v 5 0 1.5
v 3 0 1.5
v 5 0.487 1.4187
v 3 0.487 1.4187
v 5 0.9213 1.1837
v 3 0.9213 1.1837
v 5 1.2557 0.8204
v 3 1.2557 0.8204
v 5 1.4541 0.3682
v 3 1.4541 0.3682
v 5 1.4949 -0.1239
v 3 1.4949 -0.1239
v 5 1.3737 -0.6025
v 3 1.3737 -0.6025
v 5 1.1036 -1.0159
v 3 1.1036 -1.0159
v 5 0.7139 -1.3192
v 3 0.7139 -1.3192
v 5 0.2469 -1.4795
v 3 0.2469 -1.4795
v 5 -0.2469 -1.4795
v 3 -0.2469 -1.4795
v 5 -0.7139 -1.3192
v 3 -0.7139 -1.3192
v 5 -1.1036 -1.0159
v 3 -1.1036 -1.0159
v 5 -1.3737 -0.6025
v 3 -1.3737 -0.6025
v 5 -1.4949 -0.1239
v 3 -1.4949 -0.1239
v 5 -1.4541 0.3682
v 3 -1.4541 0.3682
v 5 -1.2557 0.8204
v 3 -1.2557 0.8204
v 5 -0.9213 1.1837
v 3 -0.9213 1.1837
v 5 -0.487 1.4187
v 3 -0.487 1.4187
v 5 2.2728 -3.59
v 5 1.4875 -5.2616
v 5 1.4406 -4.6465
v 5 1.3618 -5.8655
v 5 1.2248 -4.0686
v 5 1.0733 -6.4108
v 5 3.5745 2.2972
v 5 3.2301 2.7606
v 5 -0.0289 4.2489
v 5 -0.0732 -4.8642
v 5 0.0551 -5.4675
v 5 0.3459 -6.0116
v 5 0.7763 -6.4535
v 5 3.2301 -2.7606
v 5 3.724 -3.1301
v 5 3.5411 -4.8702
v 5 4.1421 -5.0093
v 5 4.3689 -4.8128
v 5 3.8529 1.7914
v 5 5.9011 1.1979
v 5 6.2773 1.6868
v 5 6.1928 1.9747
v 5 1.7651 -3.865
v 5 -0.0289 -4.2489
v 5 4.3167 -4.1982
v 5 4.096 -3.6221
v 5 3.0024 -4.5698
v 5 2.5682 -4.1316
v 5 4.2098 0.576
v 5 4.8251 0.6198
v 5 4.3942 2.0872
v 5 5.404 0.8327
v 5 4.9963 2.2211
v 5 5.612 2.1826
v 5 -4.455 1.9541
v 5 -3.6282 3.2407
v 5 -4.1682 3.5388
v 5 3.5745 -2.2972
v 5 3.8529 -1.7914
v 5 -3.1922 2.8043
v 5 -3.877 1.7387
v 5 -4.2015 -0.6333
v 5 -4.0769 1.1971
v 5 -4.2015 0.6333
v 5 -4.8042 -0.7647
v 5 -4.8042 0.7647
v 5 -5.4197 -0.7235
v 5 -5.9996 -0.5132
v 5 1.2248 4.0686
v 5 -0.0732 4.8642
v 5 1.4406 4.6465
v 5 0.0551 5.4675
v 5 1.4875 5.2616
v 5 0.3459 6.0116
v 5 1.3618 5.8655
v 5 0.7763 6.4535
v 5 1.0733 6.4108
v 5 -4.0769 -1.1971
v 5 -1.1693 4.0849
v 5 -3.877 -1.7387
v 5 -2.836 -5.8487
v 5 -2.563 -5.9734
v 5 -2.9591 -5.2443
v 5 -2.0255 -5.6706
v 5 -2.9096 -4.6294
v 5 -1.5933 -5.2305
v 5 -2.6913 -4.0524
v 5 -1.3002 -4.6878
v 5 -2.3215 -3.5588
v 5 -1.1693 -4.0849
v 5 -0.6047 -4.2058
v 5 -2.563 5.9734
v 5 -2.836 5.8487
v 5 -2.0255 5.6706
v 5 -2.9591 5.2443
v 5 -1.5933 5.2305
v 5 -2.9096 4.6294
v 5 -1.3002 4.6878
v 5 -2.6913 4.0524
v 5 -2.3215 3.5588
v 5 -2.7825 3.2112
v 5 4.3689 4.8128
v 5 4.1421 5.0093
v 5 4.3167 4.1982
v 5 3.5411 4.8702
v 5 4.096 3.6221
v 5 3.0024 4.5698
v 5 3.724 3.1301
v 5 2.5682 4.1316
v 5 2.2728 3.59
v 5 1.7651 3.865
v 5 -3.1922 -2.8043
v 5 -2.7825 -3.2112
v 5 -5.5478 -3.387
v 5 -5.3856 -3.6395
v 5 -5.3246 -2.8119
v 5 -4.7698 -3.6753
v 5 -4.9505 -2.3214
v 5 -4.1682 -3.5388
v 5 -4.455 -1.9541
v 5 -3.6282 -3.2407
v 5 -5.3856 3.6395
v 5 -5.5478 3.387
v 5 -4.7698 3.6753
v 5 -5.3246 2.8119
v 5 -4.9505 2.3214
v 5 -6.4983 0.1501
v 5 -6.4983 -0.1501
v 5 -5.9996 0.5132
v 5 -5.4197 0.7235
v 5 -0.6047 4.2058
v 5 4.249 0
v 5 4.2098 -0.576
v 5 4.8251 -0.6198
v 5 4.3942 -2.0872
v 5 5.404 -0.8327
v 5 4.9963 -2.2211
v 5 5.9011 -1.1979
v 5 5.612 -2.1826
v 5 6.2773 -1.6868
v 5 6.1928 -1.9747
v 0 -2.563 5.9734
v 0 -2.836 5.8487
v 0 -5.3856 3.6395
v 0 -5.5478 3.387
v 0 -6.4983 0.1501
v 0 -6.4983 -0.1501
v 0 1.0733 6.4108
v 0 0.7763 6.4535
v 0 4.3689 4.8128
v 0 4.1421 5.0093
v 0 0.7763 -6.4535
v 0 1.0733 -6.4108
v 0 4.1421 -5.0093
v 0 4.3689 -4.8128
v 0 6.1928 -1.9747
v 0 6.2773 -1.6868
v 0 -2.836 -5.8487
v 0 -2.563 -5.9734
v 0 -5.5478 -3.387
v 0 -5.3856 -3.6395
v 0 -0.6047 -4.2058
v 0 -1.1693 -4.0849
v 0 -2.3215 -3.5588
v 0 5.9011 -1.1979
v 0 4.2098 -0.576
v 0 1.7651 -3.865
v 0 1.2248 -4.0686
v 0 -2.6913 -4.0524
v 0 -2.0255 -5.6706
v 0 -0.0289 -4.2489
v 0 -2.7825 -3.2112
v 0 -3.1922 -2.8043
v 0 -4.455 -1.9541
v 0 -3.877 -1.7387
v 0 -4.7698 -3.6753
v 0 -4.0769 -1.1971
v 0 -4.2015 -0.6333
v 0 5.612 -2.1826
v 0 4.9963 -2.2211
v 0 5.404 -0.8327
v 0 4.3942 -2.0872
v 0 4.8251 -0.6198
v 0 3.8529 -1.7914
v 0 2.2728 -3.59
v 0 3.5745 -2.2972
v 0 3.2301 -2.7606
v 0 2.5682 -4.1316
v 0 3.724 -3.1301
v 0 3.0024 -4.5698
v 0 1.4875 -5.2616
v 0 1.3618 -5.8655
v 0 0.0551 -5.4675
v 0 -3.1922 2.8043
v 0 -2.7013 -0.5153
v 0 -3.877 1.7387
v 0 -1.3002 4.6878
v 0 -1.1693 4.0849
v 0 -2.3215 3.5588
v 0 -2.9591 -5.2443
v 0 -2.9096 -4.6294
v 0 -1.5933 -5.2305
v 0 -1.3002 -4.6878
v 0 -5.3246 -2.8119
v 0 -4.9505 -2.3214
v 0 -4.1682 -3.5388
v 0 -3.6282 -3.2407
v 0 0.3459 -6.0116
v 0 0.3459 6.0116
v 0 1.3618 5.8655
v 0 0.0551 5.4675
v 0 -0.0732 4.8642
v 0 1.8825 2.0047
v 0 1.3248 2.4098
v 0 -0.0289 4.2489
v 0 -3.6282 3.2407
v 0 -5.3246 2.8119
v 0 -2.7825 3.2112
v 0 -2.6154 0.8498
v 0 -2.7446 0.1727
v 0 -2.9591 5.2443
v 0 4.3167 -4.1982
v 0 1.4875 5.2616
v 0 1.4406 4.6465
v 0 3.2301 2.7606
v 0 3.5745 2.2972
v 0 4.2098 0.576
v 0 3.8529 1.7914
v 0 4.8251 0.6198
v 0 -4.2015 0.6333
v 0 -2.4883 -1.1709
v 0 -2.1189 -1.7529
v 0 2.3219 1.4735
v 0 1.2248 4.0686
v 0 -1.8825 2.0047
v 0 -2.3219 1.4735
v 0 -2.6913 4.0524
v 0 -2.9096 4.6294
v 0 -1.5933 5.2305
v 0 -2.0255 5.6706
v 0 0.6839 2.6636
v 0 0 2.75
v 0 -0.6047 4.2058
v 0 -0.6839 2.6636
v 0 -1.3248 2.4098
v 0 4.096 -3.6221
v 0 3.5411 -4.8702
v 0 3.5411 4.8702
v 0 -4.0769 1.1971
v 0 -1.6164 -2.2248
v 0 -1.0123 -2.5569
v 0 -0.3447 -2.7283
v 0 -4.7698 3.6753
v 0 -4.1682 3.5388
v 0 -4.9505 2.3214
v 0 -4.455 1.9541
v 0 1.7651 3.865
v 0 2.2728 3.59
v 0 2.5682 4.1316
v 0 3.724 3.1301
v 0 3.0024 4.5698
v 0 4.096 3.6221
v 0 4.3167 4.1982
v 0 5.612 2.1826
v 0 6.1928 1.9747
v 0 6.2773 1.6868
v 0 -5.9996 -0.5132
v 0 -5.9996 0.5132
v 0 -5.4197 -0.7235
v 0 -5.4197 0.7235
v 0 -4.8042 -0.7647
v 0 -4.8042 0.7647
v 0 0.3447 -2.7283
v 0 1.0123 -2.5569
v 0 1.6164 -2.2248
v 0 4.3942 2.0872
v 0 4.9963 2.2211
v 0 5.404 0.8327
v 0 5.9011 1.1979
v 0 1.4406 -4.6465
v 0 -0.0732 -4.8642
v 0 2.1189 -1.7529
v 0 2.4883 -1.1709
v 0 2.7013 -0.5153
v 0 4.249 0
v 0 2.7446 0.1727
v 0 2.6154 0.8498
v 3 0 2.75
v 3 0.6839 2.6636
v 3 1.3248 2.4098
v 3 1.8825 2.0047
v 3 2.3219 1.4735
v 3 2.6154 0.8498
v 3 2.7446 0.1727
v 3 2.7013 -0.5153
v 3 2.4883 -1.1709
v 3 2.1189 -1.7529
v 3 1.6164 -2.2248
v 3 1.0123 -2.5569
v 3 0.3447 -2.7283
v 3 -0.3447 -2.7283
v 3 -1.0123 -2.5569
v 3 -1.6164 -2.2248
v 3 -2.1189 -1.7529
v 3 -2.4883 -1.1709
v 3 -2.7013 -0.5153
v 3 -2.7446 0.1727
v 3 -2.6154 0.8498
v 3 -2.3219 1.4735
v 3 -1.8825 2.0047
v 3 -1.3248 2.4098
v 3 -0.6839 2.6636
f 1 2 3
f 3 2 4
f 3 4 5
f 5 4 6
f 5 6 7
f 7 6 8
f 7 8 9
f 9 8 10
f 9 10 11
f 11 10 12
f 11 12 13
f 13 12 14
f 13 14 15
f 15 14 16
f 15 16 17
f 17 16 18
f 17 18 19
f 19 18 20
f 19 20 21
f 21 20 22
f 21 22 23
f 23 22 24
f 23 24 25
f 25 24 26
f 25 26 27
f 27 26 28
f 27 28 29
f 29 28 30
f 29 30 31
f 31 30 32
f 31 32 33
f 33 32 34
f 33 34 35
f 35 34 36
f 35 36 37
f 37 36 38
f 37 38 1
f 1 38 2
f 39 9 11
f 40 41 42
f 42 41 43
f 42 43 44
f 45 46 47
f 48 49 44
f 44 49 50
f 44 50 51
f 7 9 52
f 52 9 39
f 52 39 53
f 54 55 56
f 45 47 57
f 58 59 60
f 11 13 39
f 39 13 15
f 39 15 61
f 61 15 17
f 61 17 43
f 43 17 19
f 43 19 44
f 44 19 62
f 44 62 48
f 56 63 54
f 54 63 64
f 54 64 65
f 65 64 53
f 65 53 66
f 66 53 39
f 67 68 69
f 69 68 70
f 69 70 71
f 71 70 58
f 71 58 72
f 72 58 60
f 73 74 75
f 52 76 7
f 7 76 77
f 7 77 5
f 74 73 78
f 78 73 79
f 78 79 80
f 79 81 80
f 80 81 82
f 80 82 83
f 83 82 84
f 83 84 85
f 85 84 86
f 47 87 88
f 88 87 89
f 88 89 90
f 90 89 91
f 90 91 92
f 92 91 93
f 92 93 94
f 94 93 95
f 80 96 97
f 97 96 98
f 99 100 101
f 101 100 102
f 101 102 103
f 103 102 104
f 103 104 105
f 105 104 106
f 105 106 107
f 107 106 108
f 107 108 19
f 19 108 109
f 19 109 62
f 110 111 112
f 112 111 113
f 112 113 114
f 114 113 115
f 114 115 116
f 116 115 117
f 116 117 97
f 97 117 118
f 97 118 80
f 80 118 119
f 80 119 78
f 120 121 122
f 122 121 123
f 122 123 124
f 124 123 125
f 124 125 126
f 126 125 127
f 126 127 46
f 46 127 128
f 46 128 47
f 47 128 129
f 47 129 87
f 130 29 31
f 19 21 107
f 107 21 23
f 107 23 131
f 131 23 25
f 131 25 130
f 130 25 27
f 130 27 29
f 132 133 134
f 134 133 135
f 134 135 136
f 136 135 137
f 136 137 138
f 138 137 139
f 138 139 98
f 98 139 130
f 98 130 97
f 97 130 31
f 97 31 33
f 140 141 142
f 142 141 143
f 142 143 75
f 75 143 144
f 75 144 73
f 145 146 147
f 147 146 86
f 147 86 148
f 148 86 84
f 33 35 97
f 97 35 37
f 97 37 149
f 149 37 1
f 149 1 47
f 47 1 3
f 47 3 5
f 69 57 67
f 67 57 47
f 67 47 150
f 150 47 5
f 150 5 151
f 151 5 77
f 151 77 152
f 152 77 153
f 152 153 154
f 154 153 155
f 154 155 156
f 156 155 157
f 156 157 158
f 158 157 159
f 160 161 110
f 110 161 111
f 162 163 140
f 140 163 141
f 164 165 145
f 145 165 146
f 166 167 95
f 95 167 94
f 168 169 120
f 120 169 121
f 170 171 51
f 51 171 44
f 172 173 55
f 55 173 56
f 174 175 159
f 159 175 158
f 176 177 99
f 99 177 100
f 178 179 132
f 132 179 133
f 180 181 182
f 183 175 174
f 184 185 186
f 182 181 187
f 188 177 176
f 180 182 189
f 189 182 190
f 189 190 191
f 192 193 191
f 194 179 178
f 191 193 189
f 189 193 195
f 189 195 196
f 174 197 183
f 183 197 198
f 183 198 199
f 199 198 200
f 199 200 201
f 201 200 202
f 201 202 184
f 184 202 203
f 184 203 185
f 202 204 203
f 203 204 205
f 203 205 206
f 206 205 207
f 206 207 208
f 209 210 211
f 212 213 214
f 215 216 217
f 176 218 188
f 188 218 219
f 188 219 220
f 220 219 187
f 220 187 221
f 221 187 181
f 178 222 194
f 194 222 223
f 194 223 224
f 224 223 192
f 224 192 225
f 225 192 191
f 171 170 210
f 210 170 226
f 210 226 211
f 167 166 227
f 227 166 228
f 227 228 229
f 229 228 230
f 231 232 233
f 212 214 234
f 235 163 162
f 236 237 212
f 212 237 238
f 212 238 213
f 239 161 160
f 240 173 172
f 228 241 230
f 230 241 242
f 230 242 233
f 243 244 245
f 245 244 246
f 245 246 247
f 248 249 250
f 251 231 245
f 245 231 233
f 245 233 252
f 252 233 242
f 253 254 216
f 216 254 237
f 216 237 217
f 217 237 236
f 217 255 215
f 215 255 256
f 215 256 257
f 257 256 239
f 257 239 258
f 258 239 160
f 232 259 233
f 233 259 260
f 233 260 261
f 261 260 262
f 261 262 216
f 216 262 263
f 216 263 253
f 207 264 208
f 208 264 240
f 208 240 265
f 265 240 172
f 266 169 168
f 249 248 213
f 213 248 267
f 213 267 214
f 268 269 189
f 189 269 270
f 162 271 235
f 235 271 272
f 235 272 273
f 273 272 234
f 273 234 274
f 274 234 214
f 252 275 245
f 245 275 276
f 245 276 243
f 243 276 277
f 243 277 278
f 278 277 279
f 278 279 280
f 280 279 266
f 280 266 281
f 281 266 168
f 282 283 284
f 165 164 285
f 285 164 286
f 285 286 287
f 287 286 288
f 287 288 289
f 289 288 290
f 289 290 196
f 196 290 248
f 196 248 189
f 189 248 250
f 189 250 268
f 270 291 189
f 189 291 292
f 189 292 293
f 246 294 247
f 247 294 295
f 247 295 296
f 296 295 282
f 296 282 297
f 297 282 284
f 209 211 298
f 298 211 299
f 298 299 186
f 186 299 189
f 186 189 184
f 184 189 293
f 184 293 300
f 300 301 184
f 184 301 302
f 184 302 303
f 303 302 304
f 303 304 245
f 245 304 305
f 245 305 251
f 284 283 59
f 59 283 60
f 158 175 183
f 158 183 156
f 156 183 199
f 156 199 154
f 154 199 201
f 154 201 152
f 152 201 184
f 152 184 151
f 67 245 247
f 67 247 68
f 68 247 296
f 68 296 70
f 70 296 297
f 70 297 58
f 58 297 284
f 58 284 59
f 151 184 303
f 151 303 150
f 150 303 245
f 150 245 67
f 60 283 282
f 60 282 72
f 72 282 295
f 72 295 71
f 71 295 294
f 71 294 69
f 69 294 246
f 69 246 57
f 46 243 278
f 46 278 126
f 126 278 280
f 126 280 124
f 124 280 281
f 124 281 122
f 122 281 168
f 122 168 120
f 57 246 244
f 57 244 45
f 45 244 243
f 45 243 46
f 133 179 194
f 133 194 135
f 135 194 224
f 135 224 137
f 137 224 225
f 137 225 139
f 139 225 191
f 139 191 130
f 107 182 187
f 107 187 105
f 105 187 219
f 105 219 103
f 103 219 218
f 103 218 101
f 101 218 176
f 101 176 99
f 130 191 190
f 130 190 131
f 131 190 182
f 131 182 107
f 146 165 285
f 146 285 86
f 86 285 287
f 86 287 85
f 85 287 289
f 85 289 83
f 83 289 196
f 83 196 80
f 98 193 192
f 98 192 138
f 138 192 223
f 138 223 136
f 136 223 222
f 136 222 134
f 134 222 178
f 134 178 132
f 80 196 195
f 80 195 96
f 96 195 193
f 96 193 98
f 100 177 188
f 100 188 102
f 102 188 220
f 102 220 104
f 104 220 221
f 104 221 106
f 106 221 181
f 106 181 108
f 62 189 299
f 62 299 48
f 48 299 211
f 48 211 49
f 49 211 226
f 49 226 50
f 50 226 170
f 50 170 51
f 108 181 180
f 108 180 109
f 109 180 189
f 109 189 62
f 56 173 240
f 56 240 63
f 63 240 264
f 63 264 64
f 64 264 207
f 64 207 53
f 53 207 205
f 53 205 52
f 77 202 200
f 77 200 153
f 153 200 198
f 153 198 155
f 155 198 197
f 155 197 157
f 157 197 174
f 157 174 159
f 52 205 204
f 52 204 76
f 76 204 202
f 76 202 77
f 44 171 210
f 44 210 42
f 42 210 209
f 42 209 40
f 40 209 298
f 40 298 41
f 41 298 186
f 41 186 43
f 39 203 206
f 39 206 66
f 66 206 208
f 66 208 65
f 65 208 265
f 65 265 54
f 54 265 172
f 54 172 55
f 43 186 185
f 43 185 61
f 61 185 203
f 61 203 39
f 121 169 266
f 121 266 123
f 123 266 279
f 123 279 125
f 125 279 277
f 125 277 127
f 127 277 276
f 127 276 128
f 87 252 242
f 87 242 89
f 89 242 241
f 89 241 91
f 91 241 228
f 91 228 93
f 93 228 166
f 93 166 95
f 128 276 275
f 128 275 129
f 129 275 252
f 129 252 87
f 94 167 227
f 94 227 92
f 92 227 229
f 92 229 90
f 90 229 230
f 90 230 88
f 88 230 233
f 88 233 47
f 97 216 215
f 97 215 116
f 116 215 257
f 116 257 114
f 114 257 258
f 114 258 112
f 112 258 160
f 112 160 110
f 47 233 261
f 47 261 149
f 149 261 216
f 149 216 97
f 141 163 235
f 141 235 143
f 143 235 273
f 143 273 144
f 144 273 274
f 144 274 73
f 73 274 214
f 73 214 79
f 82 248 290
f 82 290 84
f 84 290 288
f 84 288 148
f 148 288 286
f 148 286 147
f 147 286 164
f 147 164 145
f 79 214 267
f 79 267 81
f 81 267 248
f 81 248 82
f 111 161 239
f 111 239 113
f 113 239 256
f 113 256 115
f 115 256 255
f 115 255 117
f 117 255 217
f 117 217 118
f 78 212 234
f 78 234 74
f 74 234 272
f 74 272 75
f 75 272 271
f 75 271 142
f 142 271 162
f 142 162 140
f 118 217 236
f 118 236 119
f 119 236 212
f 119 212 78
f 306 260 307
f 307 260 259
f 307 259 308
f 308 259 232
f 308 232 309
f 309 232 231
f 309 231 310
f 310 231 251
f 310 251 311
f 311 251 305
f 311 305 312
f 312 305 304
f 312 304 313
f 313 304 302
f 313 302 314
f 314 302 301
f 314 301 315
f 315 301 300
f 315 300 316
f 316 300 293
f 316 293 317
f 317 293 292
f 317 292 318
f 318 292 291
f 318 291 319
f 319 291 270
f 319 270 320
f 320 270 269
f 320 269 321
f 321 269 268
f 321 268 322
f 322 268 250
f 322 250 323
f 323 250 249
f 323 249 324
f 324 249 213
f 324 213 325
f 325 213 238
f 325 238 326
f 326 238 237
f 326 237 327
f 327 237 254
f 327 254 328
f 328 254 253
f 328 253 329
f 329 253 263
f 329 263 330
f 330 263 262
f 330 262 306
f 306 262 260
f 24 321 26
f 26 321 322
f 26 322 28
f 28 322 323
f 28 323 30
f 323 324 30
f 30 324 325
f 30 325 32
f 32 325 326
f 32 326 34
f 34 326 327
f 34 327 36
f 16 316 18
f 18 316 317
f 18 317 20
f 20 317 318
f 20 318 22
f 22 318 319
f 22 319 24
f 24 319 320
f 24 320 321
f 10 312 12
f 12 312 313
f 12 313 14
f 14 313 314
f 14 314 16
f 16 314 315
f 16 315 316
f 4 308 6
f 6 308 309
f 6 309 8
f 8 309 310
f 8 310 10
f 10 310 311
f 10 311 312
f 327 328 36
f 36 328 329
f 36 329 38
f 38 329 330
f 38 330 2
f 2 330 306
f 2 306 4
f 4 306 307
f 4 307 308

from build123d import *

# Parameters (mm, degrees)
BASPROSKE_W             = 5
BASPROSKE_H             = 6.5
TOOTHCUT_DEPTH          = 11.464224768
TEETHCUTS_COUNT         = 11
TEETHCUTS_ANGLE         = 327.272727273
BORSKE_R                = 1.5
BORE_DEPTH              = 50.0000508
ESQUISSE1_R             = 2.75
ENL_V_MAT_EXTRU_1_DEPTH = 3


with BuildPart() as part:
    # BasProSke → Base-Revolve (revolve)
    with BuildSketch(Plane(origin=(0, 0, 0), x_dir=(1, 0, 0), z_dir=(0, 1, 0)), mode=Mode.PRIVATE) as base_revolve_sk:
        with Locations((2.5, 3.25)):
            Rectangle(BASPROSKE_W, BASPROSKE_H)
    revolve(base_revolve_sk.sketch.rotate(Axis((-10, 0, 0), (1, 0, 0)), 180), axis=Axis((-10, 0, 0), (1, 0, 0)))

    # TooCutSke → ToothCut (cut, through all)
    with BuildSketch(Plane(origin=(0, 0, 0), x_dir=(0, 0, -1), z_dir=(1, 0, 0))):
        with BuildLine():
            ThreePointArc((0.576045815, 4.209771041), (0, 4.249), (-0.576045815, 4.209771041))
            ThreePointArc((-0.576045815, 4.209771041), (-0.841371334, 5.420048739), (-1.718652745, 6.295004202))
            ThreePointArc((-1.718652745, 6.295004202), (0, 6.5254), (1.718652745, 6.295004202))
            ThreePointArc((1.718652745, 6.295004202), (0.841371334, 5.420048739), (0.576045815, 4.209771041))
        make_face()
    toothcut = extrude(amount=TOOTHCUT_DEPTH, mode=Mode.SUBTRACT)

    # TeethCuts: ToothCut ×11 about axis
    teethcuts_axis = Axis((-10, 0, 0), (1, 0, 0))
    for i in range(1, TEETHCUTS_COUNT):
        add(toothcut.rotate(teethcuts_axis, i * TEETHCUTS_ANGLE / (TEETHCUTS_COUNT - 1)), mode=Mode.SUBTRACT)

    # BorSke → Bore (cut, symmetric)
    with BuildSketch(Plane(origin=(0, 0, 0), x_dir=(0, 0, -1), z_dir=(1, 0, 0))):
        with Locations(Location((0, 0, 0), (0, 0, 180))):
            Circle(BORSKE_R)
    extrude(amount=BORE_DEPTH, both=True, mode=Mode.SUBTRACT)

    # Esquisse1 → Enlèv. mat.-Extru.1 (cut)
    with BuildSketch(Plane.ZY):
        Circle(ESQUISSE1_R)
    extrude(amount=-ENL_V_MAT_EXTRU_1_DEPTH, mode=Mode.SUBTRACT)


solid = part.part
